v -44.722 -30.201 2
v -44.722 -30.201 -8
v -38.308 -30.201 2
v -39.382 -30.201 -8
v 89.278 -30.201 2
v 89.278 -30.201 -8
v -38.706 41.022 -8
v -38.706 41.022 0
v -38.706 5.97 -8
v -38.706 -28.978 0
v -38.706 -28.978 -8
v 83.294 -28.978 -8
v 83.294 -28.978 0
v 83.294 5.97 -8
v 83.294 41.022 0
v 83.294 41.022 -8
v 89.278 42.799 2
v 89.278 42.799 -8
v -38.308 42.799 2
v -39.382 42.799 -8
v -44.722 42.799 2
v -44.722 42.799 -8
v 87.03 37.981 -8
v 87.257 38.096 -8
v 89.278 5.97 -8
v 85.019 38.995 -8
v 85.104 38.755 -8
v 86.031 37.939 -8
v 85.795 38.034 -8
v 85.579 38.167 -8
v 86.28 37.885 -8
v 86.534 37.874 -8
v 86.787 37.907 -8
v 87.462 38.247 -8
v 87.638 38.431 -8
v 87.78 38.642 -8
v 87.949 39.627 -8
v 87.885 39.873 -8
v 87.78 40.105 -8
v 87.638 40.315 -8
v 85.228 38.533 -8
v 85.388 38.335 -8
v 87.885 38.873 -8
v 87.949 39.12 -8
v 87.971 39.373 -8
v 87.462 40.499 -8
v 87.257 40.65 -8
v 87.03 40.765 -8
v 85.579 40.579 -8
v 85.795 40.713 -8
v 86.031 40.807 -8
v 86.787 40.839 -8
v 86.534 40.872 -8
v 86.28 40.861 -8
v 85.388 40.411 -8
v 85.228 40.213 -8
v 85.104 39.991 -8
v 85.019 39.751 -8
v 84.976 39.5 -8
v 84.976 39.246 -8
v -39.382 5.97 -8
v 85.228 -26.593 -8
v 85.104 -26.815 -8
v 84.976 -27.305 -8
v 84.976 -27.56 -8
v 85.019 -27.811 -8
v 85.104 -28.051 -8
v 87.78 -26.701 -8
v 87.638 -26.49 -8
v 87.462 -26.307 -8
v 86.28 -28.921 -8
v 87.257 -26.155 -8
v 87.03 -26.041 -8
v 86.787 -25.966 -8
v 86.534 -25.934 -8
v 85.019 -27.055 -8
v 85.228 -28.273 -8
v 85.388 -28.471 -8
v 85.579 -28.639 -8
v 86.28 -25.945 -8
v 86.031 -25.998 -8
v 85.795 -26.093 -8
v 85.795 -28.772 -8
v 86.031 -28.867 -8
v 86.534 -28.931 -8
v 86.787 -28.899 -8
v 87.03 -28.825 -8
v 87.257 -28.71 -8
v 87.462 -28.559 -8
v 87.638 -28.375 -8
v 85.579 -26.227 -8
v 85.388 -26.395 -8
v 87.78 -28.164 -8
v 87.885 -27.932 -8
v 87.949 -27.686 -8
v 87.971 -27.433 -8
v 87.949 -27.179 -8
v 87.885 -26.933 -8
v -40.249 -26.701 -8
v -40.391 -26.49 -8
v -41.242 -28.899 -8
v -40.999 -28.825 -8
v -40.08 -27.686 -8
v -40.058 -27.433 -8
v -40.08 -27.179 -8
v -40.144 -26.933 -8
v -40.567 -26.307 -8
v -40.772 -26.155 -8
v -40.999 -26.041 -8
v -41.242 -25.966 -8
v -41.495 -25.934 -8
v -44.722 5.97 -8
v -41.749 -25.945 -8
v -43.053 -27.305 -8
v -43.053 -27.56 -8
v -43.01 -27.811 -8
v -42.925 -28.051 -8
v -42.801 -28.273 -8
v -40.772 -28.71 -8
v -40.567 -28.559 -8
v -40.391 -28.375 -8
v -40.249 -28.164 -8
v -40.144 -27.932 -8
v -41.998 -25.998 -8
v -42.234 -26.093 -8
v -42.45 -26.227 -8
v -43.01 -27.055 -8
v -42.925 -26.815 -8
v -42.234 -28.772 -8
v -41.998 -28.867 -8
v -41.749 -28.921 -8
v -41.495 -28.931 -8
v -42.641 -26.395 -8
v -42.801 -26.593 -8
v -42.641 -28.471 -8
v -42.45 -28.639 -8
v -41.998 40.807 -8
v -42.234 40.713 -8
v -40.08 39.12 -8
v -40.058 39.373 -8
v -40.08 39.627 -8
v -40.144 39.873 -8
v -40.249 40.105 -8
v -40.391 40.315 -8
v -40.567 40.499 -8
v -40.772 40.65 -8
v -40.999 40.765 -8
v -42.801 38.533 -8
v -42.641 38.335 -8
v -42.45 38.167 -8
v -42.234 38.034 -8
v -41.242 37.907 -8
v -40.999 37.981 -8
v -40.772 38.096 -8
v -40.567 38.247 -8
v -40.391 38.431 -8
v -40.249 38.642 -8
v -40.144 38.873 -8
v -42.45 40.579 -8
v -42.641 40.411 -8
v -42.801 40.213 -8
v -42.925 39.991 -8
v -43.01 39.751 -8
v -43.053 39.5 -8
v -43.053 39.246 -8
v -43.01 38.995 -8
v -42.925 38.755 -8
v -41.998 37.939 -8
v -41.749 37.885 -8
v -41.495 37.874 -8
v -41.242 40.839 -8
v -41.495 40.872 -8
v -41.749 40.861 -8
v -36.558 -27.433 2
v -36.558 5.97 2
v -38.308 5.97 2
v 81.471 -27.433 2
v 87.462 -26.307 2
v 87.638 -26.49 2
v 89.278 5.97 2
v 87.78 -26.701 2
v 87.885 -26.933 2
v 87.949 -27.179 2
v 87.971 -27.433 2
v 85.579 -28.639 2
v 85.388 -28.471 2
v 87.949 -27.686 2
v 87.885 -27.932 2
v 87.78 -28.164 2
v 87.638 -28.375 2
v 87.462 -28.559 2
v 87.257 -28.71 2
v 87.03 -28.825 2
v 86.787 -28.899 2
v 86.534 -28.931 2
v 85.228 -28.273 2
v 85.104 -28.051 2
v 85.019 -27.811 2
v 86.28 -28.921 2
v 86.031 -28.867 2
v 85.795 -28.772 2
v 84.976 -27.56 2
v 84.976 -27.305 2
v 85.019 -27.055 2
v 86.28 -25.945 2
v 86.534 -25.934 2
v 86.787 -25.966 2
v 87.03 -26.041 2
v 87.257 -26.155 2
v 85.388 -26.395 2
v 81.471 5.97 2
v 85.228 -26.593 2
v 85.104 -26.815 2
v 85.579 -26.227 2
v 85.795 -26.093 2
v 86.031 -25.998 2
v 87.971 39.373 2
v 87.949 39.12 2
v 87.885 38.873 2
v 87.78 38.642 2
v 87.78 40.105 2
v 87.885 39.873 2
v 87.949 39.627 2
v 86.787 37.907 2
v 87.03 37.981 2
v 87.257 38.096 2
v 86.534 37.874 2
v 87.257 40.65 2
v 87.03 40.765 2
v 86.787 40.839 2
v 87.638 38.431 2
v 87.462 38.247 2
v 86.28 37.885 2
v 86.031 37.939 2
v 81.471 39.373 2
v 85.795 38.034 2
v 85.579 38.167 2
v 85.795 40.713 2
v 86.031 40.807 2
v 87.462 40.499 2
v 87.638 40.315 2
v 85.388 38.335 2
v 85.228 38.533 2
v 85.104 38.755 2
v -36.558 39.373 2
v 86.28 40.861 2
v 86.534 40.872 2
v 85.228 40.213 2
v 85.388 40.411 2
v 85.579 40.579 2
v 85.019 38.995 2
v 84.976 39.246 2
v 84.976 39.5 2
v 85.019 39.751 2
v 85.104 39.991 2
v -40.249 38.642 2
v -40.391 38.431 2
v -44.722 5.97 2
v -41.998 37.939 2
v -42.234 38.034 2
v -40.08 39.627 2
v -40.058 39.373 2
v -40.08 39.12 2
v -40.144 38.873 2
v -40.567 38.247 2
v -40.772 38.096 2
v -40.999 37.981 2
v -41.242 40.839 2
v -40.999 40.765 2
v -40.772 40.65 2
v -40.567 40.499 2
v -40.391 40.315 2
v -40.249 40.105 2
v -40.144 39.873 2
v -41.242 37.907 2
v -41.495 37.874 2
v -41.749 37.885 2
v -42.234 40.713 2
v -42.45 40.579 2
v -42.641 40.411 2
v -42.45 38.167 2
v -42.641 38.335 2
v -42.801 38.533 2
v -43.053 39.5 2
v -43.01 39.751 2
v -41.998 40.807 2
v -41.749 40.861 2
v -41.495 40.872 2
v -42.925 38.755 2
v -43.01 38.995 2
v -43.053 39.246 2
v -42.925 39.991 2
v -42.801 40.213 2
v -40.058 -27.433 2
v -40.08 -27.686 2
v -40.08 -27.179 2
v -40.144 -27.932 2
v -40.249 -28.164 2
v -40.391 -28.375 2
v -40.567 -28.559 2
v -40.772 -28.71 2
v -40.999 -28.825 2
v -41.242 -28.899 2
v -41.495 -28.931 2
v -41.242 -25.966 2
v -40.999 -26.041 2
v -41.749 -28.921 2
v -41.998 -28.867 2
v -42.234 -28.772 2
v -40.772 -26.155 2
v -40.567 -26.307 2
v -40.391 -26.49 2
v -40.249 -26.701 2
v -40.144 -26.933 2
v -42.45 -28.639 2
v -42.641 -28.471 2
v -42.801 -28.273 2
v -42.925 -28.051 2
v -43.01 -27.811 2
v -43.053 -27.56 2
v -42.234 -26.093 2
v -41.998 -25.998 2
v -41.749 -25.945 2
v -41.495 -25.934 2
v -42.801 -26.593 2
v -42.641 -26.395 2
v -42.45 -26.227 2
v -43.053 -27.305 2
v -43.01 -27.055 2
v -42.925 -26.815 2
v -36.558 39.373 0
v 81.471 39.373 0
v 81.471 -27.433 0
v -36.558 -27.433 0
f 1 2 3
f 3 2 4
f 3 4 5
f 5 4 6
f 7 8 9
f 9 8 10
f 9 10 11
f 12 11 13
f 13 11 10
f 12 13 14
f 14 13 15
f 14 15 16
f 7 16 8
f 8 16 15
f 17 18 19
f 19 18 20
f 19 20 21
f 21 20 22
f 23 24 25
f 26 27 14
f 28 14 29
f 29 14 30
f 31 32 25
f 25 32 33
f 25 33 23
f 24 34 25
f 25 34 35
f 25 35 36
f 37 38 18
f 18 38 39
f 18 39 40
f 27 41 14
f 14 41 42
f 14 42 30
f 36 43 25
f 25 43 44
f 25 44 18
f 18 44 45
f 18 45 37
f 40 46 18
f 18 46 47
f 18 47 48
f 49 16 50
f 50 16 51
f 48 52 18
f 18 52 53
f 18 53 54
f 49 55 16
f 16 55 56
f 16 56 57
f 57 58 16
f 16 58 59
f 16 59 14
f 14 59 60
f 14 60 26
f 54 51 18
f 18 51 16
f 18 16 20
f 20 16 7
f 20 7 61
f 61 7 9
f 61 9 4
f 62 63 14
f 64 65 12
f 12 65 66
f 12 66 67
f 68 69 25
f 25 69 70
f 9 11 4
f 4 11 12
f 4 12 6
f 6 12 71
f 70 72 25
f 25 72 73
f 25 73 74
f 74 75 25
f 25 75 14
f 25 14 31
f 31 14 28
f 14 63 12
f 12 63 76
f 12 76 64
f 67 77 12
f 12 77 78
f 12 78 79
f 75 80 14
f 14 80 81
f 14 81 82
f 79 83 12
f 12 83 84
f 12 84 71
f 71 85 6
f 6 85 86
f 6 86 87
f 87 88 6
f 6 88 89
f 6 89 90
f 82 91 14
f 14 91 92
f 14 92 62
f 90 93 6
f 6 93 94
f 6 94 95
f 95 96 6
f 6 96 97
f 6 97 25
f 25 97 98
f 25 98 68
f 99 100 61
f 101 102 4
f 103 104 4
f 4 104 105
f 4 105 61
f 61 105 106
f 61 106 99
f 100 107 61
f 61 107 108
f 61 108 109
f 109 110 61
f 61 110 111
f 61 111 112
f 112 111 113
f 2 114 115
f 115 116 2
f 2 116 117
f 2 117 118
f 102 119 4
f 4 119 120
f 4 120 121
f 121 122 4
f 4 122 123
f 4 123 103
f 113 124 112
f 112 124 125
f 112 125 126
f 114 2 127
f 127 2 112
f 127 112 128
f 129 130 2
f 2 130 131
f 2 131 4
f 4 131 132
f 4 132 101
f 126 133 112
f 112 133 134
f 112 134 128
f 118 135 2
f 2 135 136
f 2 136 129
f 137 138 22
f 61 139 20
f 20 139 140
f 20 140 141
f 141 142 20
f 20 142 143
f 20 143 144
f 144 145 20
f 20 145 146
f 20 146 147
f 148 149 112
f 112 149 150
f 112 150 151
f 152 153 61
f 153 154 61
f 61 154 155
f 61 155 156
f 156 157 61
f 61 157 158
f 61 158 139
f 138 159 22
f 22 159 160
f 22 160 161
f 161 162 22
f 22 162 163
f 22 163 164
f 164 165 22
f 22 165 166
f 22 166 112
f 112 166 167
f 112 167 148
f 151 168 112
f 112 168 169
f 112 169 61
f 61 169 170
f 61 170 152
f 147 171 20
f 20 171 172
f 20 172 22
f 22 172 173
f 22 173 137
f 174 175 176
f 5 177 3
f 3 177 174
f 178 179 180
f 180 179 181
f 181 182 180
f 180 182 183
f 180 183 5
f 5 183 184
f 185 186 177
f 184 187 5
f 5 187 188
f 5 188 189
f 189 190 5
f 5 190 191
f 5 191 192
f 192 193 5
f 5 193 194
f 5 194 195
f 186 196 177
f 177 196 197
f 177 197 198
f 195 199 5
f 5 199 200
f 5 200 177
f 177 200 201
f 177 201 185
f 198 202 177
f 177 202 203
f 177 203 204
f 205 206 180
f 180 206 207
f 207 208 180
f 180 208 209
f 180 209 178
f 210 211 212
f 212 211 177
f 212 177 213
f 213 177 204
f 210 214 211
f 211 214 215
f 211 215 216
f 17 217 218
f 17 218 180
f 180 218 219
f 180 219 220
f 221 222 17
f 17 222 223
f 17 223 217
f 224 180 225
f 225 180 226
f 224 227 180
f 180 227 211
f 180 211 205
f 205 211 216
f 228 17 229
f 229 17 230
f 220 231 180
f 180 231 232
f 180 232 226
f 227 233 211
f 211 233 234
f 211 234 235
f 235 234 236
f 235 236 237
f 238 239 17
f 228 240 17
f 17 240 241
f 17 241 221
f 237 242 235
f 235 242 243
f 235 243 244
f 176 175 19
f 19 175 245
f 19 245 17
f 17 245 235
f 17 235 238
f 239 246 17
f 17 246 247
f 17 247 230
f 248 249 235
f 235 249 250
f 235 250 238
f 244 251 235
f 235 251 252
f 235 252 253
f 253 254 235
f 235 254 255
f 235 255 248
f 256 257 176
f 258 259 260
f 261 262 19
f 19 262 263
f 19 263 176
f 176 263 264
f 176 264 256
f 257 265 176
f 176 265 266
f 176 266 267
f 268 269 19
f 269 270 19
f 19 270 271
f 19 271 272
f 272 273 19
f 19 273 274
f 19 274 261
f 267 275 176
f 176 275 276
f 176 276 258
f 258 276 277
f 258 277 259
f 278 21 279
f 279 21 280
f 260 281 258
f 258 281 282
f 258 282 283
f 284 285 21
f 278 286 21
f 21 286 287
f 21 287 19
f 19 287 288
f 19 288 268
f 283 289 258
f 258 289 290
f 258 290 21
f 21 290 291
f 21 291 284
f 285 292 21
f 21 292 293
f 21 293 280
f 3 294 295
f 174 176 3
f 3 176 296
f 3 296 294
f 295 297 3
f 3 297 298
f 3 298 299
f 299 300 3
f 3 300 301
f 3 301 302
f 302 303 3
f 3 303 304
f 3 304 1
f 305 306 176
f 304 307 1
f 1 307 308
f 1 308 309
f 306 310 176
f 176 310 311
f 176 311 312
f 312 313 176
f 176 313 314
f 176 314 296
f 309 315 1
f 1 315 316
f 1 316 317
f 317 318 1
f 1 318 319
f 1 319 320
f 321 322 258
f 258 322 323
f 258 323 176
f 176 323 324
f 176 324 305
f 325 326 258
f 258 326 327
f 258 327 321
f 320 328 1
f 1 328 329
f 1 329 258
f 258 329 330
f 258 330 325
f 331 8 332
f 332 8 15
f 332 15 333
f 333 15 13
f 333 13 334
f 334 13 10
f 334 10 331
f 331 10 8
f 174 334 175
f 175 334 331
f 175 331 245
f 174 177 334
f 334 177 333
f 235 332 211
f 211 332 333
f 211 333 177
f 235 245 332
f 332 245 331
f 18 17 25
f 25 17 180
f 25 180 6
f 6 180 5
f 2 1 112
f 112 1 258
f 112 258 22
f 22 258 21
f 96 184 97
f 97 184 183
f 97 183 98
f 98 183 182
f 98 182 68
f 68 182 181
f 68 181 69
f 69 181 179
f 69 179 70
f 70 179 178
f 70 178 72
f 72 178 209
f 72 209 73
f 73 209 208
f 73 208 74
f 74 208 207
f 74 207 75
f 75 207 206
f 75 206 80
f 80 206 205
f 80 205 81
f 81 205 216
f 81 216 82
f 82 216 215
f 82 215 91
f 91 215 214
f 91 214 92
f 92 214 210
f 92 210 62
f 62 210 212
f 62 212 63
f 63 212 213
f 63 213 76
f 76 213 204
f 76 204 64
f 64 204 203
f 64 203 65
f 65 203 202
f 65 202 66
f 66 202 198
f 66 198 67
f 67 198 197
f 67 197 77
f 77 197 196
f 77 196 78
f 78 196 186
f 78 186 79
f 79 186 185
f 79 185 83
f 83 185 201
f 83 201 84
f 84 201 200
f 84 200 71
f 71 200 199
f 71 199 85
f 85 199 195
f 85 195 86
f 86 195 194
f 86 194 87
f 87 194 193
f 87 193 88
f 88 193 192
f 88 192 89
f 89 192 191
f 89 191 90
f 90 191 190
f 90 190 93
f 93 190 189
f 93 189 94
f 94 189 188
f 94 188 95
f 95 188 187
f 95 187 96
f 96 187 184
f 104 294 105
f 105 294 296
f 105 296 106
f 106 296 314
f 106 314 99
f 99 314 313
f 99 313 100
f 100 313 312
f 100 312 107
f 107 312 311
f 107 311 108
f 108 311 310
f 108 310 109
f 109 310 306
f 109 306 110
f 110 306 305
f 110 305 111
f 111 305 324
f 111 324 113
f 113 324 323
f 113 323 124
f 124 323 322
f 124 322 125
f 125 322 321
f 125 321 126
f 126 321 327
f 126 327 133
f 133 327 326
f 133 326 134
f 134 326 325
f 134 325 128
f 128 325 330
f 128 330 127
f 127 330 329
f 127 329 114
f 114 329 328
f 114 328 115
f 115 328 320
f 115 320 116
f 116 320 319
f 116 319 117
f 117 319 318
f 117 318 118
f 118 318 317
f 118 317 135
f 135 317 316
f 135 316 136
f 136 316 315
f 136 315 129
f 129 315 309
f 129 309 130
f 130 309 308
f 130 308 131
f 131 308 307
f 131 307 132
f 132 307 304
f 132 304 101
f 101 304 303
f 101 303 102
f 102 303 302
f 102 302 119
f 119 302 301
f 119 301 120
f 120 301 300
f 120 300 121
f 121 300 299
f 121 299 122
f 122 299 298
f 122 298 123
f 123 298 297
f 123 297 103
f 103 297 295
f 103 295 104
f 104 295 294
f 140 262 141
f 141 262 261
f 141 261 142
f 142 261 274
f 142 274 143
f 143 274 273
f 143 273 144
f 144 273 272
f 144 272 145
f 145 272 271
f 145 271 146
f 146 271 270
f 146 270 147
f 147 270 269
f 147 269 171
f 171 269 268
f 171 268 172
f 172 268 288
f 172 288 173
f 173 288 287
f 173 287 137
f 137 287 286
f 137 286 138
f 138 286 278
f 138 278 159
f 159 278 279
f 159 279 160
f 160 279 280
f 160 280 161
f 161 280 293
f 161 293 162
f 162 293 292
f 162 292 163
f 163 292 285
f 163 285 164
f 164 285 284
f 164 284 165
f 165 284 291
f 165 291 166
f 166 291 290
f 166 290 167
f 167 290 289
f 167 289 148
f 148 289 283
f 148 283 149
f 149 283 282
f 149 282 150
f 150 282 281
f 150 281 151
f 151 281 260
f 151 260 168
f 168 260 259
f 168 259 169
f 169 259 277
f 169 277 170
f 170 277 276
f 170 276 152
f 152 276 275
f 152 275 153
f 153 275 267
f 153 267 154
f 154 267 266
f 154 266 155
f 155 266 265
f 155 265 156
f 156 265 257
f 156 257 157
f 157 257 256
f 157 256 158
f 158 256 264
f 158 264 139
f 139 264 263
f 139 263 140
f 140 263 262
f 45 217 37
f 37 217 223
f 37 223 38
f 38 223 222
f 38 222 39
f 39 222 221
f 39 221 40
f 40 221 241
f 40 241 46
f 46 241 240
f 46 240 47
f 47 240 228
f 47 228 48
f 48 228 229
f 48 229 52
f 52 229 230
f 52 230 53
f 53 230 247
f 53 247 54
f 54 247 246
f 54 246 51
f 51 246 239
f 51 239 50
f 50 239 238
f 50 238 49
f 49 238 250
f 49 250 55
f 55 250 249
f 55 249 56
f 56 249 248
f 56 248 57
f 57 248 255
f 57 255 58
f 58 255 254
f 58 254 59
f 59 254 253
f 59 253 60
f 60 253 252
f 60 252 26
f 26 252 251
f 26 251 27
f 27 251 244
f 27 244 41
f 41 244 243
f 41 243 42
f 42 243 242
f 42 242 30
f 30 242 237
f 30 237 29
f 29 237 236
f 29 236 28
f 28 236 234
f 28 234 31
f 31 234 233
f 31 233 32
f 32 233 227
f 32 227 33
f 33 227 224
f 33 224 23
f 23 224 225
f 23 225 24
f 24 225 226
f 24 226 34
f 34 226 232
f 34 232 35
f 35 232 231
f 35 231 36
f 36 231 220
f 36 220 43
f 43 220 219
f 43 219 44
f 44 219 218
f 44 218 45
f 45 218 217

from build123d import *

# Parameters (mm, degrees)
SKETCH_1_W          = 126
SKETCH_1_H          = 73
SKETCH_1_W_2        = 122
SKETCH_1_H_2        = 70
EXTRUDE_1_DEPTH     = 8
SKETCH_5_W          = 126
SKETCH_5_H          = 73
SKETCH_5_W_2        = 118.02914008
SKETCH_5_H_2        = 66.805819456
EXTRUDE_2_DEPTH     = 2
SKETCH_7_W          = 4
SKETCH_7_H          = 73
EXTRUDE_3_DEPTH     = 2
SKETCH_8_W          = 4
SKETCH_8_H          = 73
EXTRUDE_5_DEPTH     = 2
SKETCH_10_W         = 4
SKETCH_10_H         = 73
EXTRUDE_6_DEPTH     = 5
SKETCH_12_W         = 4
SKETCH_12_H         = 73
EXTRUDE_7_DEPTH     = 3
CUT_EXTRUDE_1_DEPTH = 100.510141559


with BuildPart() as part:
    # 草图1 → 凸台-拉伸1 (new body)
    with BuildSketch(Plane.XY):
        with Locations((22.277543779, 6.299397776)):
            Rectangle(SKETCH_1_W, SKETCH_1_H)
        with Locations((22.29370516, 6.021928133)):
            Rectangle(SKETCH_1_W_2, SKETCH_1_H_2, mode=Mode.SUBTRACT)
    extrude(amount=-EXTRUDE_1_DEPTH)

    # 草图5 → 凸台-拉伸2 (add)
    with BuildSketch(Plane.XY):
        with Locations((22.277543779, 6.299397776)):
            Rectangle(SKETCH_5_W, SKETCH_5_H)
        with Locations((22.456070853, 5.970224549)):
            Rectangle(SKETCH_5_W_2, SKETCH_5_H_2, mode=Mode.SUBTRACT)
    extrude(amount=EXTRUDE_2_DEPTH)

    # 草图7 → 凸台-拉伸3 (add)
    with BuildSketch(Plane(origin=(0, 0, -8), x_dir=(-1, 0, 0), z_dir=(0, 0, -1))):
        with Locations((-87.277543779, 6.299397776)):
            Rectangle(SKETCH_7_W, SKETCH_7_H)
    extrude(amount=-EXTRUDE_3_DEPTH)

    # 草图8 → 凸台-拉伸5 (add)
    with BuildSketch(Plane(origin=(0, 0, -8), x_dir=(-1, 0, 0), z_dir=(0, 0, -1))):
        with Locations((42.722456221, 6.299397776)):
            Rectangle(SKETCH_8_W, SKETCH_8_H)
    extrude(amount=-EXTRUDE_5_DEPTH)

    # 草图10 → 凸台-拉伸6 (add)
    with BuildSketch(Plane.XY.offset(-6)):
        with Locations((87.277543779, 6.299397776)):
            Rectangle(SKETCH_10_W, SKETCH_10_H)
        with Locations((-42.722456221, 6.299397776)):
            Rectangle(SKETCH_10_W, SKETCH_10_H)
    extrude(amount=EXTRUDE_6_DEPTH)

    # 草图12 → 凸台-拉伸7 (add)
    with BuildSketch(Plane.XY.offset(-1)):
        with Locations((-42.722456221, 6.299397776)):
            Rectangle(SKETCH_12_W, SKETCH_12_H)
        with Locations((87.277543779, 6.299397776)):
            Rectangle(SKETCH_12_W, SKETCH_12_H)
    extrude(amount=EXTRUDE_7_DEPTH)

    # 草图13 → 切除-拉伸1 (cut, through all)
    with BuildSketch(Plane.XY.offset(2)):
        with BuildLine():
            ThreePointArc((87.970640893, -27.432685179), (87.531301065, -26.372025007), (86.470640893, -25.932685179))
            Line((86.470640893, -25.932685179), (86.470640893, -27.432685179))
            Line((86.470640893, -27.432685179), (84.970640893, -27.432685179))
            ThreePointArc((84.970640893, -27.432685179), (86.470640893, -28.932685179), (87.970640893, -27.432685179))
        make_face()
        with BuildLine():
            Line((86.470640893, -27.432685179), (86.470640893, -25.932685179))
            ThreePointArc((86.470640893, -25.932685179), (85.409980722, -26.372025007), (84.970640893, -27.432685179))
            Line((84.970640893, -27.432685179), (86.470640893, -27.432685179))
        make_face()
        with BuildLine():
            ThreePointArc((-40.058499187, -27.432685179), (-40.497839015, -26.372025007), (-41.558499187, -25.932685179))
            Line((-41.558499187, -25.932685179), (-41.558499187, -27.432685179))
            Line((-41.558499187, -27.432685179), (-40.058499187, -27.432685179))
        make_face()
        with BuildLine():
            Line((-41.558499187, -27.432685179), (-41.558499187, -25.932685179))
            ThreePointArc((-41.558499187, -25.932685179), (-42.619159359, -28.49334535), (-40.058499187, -27.432685179))
            Line((-40.058499187, -27.432685179), (-41.558499187, -27.432685179))
        make_face()
        with BuildLine():
            Line((-41.558499187, 37.873134277), (-41.558499187, 39.373134277))
            Line((-41.558499187, 39.373134277), (-40.058499187, 39.373134277))
            ThreePointArc((-40.058499187, 39.373134277), (-42.619159359, 40.433794449), (-41.558499187, 37.873134277))
        make_face()
        with BuildLine():
            Line((-40.058499187, 39.373134277), (-41.558499187, 39.373134277))
            Line((-41.558499187, 39.373134277), (-41.558499187, 37.873134277))
            ThreePointArc((-41.558499187, 37.873134277), (-40.497839015, 38.312474105), (-40.058499187, 39.373134277))
        make_face()
        with BuildLine():
            ThreePointArc((87.970640893, 39.373134277), (86.470640893, 40.873134277), (84.970640893, 39.373134277))
            Line((84.970640893, 39.373134277), (86.470640893, 39.373134277))
            Line((86.470640893, 39.373134277), (86.470640893, 37.873134277))
            ThreePointArc((86.470640893, 37.873134277), (87.531301065, 38.312474105), (87.970640893, 39.373134277))
        make_face()
        with BuildLine():
            Line((86.470640893, 39.373134277), (84.970640893, 39.373134277))
            ThreePointArc((84.970640893, 39.373134277), (85.409980722, 38.312474105), (86.470640893, 37.873134277))
            Line((86.470640893, 37.873134277), (86.470640893, 39.373134277))
        make_face()
    extrude(amount=-CUT_EXTRUDE_1_DEPTH, mode=Mode.SUBTRACT)


solid = part.part
